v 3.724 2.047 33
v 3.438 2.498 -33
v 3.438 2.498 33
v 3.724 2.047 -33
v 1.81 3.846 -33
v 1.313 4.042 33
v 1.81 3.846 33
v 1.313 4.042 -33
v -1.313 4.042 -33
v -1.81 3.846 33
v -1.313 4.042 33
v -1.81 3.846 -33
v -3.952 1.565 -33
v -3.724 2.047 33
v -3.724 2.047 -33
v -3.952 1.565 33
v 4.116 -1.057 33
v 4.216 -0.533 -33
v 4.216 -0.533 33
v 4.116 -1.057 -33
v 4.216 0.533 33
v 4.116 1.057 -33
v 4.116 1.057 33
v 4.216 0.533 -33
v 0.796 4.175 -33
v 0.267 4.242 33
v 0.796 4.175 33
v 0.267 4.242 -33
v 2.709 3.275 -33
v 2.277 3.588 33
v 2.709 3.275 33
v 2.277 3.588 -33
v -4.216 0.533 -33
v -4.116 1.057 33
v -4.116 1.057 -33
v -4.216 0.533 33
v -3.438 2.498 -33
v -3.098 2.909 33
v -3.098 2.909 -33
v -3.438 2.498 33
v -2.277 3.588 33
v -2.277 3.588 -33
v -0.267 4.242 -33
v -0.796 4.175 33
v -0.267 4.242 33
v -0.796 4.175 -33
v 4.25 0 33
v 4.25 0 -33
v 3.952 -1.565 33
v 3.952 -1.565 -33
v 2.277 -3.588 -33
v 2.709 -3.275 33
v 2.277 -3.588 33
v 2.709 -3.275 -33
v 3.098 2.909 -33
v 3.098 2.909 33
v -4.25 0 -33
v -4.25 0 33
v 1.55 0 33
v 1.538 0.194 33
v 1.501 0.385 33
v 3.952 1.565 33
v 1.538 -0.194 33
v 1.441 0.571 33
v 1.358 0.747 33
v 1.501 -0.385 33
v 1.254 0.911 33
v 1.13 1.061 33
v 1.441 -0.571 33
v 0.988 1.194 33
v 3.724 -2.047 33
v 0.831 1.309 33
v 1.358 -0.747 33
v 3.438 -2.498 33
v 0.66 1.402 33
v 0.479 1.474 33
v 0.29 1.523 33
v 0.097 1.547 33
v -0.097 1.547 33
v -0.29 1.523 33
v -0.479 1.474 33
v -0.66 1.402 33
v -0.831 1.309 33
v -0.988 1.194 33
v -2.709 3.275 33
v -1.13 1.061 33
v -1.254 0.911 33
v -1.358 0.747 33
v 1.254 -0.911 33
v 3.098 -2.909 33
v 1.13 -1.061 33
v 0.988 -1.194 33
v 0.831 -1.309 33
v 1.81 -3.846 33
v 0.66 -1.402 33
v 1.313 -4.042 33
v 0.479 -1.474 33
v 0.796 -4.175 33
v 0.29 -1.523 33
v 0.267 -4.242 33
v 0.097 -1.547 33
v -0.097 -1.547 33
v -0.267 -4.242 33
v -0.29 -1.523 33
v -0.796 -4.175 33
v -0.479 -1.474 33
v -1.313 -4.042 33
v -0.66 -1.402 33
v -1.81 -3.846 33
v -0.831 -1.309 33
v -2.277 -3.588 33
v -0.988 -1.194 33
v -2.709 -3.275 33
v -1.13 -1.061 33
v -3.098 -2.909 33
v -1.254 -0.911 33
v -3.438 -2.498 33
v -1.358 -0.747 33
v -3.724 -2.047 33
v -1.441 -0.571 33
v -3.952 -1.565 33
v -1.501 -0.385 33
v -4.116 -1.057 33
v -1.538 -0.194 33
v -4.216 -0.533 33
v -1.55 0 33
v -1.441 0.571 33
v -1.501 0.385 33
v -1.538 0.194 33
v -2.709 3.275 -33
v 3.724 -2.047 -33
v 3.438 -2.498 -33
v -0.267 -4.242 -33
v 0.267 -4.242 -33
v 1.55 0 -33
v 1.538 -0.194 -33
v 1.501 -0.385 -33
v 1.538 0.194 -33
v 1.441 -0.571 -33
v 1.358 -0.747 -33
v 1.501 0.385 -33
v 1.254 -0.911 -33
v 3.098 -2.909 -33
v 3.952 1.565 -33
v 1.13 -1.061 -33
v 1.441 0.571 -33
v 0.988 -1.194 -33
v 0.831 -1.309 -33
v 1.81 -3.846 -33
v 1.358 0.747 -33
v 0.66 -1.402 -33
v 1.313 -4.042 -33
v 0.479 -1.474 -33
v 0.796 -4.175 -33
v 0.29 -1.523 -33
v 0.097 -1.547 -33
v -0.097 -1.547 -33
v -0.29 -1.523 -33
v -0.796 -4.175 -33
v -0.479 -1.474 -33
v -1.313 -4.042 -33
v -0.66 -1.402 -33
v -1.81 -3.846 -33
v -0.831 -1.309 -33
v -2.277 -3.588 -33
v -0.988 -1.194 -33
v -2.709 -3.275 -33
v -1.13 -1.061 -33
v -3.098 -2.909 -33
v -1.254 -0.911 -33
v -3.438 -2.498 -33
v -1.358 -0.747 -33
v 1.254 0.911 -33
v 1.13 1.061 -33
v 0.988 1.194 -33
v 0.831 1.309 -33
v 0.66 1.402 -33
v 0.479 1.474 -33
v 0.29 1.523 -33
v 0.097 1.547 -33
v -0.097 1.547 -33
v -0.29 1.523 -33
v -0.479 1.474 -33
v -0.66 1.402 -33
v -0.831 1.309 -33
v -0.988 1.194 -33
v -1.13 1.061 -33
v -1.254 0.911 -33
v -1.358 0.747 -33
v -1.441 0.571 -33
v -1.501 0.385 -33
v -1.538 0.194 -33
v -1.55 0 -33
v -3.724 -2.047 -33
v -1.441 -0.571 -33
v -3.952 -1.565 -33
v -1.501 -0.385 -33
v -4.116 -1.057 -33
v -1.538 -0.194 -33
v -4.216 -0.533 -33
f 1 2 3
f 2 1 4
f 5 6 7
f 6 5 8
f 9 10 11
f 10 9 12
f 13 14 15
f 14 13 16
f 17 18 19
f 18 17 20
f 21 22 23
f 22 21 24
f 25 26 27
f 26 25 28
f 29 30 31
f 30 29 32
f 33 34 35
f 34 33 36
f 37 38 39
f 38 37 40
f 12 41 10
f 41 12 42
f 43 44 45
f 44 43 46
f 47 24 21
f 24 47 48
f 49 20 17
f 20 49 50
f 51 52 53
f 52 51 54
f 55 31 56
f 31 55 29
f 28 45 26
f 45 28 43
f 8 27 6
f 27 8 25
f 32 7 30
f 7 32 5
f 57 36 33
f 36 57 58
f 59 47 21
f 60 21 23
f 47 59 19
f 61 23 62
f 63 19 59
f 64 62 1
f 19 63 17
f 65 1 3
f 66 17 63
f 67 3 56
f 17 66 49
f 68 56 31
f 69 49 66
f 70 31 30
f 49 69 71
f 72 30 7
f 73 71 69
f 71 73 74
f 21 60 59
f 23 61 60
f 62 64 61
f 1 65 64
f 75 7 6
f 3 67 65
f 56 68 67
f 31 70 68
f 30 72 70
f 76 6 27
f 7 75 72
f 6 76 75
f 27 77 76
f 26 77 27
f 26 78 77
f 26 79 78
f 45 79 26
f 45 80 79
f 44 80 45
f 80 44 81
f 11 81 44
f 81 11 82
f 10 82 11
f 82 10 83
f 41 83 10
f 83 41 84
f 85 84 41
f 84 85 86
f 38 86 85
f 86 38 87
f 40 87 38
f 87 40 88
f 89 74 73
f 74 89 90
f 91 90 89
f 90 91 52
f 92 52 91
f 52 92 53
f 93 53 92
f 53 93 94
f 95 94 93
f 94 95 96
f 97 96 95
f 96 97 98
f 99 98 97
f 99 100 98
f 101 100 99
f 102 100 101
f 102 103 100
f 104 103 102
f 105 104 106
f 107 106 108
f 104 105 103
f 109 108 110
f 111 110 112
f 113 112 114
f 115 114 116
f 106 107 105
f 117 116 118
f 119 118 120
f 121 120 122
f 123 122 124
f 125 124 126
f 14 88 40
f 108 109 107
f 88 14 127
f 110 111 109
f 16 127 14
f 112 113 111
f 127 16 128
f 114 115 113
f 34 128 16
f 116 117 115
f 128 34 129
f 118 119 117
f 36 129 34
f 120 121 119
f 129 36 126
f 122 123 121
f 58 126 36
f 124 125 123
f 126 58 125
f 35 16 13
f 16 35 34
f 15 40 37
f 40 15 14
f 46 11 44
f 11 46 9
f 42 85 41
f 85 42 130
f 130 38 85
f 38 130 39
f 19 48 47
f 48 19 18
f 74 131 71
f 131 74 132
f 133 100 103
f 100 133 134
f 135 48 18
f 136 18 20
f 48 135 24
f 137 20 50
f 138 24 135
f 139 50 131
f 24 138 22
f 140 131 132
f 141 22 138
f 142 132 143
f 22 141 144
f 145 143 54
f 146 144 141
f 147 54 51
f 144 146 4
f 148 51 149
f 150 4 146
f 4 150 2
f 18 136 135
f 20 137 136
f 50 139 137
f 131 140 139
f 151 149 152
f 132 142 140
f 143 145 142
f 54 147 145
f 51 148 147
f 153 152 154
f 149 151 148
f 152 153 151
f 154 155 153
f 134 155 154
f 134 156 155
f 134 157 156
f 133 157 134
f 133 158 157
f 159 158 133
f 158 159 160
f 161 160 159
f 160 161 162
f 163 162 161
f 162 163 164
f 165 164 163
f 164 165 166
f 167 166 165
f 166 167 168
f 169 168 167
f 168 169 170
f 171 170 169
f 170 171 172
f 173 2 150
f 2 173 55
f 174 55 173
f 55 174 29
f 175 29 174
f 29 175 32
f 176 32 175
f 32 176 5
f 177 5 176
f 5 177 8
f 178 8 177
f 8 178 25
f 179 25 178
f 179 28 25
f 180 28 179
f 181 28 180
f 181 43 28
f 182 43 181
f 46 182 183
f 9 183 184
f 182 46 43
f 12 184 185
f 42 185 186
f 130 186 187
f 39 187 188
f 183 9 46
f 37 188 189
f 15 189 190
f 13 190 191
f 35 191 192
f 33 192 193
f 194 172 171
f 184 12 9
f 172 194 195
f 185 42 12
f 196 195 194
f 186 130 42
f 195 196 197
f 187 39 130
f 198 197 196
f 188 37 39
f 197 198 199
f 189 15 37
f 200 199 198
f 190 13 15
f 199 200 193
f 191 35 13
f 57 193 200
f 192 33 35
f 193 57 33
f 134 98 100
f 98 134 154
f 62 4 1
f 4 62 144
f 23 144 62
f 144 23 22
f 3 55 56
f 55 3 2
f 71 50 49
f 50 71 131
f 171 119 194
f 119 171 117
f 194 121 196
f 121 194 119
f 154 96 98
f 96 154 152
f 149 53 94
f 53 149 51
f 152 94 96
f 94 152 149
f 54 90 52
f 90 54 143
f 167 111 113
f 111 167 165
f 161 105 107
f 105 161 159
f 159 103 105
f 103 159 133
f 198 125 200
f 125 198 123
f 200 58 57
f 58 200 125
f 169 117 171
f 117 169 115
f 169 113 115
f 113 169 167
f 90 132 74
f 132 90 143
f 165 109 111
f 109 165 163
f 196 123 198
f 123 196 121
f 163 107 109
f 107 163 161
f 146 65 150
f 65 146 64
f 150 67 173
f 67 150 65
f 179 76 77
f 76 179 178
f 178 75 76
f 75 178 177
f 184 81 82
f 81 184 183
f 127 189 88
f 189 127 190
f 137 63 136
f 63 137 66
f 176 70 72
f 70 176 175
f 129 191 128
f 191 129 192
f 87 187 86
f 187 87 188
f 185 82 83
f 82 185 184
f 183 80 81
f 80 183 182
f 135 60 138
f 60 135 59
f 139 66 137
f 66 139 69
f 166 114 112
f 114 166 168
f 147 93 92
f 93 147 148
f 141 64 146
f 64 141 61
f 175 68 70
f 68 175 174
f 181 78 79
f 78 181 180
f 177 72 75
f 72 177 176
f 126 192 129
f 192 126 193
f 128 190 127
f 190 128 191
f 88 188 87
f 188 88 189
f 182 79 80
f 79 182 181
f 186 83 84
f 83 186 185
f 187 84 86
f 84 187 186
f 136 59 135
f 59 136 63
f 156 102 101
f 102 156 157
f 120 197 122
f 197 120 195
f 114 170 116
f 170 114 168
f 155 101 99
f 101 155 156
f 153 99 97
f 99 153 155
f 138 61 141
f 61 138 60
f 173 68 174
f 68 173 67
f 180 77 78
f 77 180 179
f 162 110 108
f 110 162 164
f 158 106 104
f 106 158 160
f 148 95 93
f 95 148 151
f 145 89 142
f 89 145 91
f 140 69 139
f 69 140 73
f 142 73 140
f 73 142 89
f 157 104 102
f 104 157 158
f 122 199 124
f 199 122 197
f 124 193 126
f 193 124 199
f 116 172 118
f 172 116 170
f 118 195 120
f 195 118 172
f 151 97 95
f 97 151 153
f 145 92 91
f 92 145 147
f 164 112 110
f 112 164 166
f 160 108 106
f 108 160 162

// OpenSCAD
$fn = 50;


difference() {
	union() {
		translate(v = [0, 0, -33.0000000000]) {
			cylinder(h = 66, r = 4.2500000000);
		}
	}
	union() {
		translate(v = [0, 0, -100.0000000000]) {
			cylinder(h = 200, r = 1.5500000000);
		}
	}
}
